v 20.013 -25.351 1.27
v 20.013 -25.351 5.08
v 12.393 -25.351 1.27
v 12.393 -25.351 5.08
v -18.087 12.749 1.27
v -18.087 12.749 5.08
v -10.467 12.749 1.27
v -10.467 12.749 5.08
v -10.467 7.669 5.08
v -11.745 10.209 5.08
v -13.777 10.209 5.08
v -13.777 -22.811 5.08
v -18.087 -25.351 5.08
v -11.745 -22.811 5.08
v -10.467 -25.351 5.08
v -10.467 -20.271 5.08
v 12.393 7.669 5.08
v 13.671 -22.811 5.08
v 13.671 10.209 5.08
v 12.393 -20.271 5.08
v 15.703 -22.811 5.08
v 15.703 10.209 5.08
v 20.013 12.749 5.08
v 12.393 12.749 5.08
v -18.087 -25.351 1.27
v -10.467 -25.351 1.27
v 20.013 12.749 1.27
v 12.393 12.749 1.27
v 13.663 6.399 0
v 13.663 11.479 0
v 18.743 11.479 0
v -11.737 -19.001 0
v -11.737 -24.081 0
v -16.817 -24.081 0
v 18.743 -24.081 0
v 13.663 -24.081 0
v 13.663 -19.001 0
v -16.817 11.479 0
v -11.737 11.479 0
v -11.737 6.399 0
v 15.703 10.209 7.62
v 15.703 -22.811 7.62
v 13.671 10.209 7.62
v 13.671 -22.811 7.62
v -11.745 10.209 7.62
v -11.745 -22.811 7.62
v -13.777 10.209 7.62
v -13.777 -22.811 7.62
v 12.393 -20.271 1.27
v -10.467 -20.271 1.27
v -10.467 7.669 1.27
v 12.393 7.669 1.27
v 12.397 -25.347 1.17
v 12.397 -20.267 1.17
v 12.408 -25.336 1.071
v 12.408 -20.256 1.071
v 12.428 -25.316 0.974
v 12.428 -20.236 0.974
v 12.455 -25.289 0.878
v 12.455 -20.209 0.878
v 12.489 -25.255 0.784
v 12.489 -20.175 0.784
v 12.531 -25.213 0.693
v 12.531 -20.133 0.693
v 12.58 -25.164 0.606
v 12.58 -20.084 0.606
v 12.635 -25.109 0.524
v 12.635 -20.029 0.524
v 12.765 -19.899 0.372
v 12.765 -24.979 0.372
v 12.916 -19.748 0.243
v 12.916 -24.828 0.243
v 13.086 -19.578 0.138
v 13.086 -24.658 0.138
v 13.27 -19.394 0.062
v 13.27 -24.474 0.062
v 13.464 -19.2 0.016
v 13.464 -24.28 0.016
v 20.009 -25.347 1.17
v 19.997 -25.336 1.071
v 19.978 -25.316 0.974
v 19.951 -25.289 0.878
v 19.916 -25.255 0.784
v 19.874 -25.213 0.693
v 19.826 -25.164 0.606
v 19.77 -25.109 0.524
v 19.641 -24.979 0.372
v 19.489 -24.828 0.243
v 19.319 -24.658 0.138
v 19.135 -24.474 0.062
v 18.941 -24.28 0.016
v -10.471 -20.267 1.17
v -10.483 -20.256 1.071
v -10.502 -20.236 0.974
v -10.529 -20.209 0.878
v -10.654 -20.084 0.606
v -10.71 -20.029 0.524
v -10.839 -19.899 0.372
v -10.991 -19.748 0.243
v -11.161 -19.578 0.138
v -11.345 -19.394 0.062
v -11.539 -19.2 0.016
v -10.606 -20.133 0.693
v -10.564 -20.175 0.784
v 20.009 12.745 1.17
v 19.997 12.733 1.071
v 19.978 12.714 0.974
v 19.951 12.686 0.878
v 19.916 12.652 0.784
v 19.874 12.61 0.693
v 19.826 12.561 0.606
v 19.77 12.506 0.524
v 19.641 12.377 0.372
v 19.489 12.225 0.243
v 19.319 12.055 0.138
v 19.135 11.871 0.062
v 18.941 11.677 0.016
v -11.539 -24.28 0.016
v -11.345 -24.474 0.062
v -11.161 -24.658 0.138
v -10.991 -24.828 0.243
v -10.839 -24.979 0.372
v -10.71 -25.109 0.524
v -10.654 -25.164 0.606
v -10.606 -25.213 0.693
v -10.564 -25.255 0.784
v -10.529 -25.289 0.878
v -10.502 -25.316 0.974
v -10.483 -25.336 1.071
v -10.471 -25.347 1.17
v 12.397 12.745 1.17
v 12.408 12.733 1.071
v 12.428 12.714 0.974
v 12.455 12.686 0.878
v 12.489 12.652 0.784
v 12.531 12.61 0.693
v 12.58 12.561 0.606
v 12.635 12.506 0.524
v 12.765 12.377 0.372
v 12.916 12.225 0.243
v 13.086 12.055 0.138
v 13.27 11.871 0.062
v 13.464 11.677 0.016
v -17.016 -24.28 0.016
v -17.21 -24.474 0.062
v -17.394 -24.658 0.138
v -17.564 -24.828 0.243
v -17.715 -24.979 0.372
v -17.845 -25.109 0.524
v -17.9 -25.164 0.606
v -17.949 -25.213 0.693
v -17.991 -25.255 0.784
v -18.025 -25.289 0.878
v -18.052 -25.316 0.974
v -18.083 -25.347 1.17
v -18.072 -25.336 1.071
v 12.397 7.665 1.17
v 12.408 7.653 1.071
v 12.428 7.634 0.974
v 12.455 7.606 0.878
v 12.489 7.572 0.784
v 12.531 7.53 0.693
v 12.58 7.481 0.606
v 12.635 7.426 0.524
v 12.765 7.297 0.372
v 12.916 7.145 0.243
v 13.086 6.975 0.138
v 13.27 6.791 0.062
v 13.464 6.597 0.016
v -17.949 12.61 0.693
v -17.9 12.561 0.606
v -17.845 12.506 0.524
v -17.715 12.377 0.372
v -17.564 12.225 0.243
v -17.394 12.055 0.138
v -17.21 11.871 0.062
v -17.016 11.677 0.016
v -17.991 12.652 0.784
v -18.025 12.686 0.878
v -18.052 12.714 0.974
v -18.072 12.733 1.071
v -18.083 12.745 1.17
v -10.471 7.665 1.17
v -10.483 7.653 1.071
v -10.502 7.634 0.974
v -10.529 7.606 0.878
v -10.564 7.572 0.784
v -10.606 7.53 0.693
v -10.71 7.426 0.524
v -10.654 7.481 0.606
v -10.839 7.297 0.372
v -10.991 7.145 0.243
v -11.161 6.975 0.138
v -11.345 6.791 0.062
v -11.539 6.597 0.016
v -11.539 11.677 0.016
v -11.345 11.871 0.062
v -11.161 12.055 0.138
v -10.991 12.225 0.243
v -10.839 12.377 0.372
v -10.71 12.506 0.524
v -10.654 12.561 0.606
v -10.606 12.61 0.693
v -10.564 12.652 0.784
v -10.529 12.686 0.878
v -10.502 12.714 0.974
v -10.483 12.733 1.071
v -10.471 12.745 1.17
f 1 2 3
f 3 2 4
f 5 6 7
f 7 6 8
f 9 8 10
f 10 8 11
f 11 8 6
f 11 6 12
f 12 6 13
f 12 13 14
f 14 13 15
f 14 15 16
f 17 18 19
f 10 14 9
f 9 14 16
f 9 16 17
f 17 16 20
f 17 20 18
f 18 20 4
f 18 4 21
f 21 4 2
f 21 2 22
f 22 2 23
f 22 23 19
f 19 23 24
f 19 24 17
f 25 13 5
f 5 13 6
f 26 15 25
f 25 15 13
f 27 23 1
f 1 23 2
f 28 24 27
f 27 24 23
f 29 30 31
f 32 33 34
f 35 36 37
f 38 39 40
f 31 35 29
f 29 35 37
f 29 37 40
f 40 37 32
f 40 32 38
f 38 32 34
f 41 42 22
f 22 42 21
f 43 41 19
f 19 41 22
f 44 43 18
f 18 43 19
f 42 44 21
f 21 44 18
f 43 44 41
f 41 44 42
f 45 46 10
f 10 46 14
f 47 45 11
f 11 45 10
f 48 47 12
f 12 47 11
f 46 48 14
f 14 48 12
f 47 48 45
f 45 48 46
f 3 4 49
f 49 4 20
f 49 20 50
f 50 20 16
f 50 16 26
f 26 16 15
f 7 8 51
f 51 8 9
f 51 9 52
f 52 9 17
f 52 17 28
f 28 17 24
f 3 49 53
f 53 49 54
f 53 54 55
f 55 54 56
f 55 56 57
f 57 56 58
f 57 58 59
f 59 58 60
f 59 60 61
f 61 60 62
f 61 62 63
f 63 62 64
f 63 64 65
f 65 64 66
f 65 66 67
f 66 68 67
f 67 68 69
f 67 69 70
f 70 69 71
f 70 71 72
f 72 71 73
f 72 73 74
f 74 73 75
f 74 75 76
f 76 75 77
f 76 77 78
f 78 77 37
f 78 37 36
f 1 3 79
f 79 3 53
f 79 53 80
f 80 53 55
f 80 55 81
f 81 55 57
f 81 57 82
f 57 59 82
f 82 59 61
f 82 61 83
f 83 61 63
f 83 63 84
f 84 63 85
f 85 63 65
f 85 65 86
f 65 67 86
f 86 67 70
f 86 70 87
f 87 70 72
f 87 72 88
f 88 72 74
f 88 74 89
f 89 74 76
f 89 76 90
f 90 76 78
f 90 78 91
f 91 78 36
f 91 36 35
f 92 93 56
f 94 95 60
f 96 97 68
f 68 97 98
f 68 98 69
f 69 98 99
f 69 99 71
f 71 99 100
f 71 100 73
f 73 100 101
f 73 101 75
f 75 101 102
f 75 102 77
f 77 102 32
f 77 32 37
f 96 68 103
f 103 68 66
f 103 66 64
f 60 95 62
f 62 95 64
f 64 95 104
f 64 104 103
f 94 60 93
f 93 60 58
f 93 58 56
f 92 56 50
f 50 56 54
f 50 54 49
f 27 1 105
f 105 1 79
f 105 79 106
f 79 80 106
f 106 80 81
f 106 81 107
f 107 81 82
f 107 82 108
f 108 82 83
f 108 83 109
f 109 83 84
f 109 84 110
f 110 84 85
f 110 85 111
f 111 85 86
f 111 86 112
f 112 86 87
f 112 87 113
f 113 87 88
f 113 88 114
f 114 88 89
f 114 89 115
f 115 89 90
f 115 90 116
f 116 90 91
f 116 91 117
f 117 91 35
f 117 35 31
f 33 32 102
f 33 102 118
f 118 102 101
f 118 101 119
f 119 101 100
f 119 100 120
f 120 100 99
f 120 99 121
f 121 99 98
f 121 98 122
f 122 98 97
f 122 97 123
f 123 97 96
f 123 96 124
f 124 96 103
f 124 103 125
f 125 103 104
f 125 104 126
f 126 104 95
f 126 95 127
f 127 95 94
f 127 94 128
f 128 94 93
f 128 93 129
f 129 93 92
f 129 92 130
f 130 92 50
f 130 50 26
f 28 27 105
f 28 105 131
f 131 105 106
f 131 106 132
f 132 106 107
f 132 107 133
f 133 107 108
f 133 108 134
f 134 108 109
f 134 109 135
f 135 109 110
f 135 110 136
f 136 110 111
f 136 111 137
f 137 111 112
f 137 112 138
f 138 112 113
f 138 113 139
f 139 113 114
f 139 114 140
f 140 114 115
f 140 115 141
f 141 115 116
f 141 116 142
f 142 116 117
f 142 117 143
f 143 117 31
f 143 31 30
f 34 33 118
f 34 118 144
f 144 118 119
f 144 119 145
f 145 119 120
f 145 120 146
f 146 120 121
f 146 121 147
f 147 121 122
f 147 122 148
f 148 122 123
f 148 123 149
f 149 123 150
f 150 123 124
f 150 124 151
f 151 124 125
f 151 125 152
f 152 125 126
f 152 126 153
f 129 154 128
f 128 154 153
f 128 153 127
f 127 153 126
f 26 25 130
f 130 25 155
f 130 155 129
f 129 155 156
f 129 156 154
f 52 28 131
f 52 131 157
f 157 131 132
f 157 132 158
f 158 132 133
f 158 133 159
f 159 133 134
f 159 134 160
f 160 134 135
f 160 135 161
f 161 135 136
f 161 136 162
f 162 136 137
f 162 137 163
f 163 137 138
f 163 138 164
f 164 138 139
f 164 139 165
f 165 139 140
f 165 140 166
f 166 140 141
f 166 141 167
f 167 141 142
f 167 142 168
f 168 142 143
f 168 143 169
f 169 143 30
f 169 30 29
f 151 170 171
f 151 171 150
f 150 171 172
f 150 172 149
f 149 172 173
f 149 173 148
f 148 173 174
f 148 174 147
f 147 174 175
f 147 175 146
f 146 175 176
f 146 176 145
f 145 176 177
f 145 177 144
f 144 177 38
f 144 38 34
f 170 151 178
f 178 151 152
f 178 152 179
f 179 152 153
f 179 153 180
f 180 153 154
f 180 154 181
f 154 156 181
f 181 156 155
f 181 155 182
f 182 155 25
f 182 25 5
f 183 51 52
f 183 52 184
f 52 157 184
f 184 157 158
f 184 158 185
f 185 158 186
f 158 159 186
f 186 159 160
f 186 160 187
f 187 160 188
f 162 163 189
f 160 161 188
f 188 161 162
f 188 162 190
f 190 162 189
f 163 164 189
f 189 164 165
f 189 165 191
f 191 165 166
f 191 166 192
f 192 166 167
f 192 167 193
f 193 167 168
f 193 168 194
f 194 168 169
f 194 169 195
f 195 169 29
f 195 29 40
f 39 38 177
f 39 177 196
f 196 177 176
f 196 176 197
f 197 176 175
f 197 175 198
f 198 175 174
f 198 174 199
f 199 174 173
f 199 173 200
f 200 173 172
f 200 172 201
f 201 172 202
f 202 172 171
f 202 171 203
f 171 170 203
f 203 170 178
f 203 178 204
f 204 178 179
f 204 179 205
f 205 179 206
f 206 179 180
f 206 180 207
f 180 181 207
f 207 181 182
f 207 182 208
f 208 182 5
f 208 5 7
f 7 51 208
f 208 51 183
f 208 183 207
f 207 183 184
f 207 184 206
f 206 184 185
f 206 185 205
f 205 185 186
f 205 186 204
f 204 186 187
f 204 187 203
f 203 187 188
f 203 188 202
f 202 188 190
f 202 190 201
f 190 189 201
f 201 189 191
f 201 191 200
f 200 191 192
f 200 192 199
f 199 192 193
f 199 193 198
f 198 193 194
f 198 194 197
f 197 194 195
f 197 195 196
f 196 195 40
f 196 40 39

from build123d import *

# Parameters (mm, degrees)
SKETCH1_W           = 38.1
SKETCH1_H           = 38.1
BOSS_EXTRUDE1_DEPTH = 5.08
SKETCH5_W           = 2.032
SKETCH5_H           = 33.02
BOSS_EXTRUDE3_DEPTH = 2.54
SKETCH6_W           = 22.86
SKETCH6_H           = 5.08
CUT_EXTRUDE1_DEPTH  = 8.62
FILLET1_R           = 1.27


with BuildPart() as part:
    # Sketch1 → Boss-Extrude1 (new body)
    with BuildSketch(Plane.XY):
        with Locations((0.962710567, -6.301378254)):
            Rectangle(SKETCH1_W, SKETCH1_H)
    extrude(amount=BOSS_EXTRUDE1_DEPTH)

    # Sketch5 → Boss-Extrude3 (add)
    with BuildSketch(Plane.XY.offset(5.08)):
        with Locations((14.686710567, -6.301378254)):
            Rectangle(SKETCH5_W, SKETCH5_H)
        with Locations((-12.761289417, -6.301378254)):
            Rectangle(SKETCH5_W, SKETCH5_H)
    extrude(amount=BOSS_EXTRUDE3_DEPTH)

    # Sketch6 → Cut-Extrude1 (cut, through all)
    with BuildSketch(Plane(origin=(0, 0, 0), x_dir=(-1, 0, 0), z_dir=(0, 0, -1))):
        with Locations((-0.962710567, 10.208621746)):
            Rectangle(SKETCH6_W, SKETCH6_H)
        with Locations((-0.962710567, -22.811378254)):
            Rectangle(SKETCH6_W, SKETCH6_H)
    extrude(amount=-CUT_EXTRUDE1_DEPTH, mode=Mode.SUBTRACT)

    # Fillet1
    fillet1_edges = [part.edges().sort_by_distance(p)[0] for p in [
        (-14.277289433, 12.748621746, 0),
        (16.202710567, -25.351378254, 0),
        (16.202710567, 12.748621746, 0),
        (20.012710567, -6.301378254, 0),
        (-10.467289433, 10.208621746, 0),
        (12.392710567, 10.208621746, 0),
        (0.962710567, 7.668621746, 0),
        (-14.277289433, -25.351378254, 0),
        (-18.087289433, -6.301378254, 0),
        (12.392710567, -22.811378254, 0),
        (-10.467289433, -22.811378254, 0),
        (0.962710567, -20.271378254, 0),
    ]]
    fillet(fillet1_edges, radius=FILLET1_R)


solid = part.part
